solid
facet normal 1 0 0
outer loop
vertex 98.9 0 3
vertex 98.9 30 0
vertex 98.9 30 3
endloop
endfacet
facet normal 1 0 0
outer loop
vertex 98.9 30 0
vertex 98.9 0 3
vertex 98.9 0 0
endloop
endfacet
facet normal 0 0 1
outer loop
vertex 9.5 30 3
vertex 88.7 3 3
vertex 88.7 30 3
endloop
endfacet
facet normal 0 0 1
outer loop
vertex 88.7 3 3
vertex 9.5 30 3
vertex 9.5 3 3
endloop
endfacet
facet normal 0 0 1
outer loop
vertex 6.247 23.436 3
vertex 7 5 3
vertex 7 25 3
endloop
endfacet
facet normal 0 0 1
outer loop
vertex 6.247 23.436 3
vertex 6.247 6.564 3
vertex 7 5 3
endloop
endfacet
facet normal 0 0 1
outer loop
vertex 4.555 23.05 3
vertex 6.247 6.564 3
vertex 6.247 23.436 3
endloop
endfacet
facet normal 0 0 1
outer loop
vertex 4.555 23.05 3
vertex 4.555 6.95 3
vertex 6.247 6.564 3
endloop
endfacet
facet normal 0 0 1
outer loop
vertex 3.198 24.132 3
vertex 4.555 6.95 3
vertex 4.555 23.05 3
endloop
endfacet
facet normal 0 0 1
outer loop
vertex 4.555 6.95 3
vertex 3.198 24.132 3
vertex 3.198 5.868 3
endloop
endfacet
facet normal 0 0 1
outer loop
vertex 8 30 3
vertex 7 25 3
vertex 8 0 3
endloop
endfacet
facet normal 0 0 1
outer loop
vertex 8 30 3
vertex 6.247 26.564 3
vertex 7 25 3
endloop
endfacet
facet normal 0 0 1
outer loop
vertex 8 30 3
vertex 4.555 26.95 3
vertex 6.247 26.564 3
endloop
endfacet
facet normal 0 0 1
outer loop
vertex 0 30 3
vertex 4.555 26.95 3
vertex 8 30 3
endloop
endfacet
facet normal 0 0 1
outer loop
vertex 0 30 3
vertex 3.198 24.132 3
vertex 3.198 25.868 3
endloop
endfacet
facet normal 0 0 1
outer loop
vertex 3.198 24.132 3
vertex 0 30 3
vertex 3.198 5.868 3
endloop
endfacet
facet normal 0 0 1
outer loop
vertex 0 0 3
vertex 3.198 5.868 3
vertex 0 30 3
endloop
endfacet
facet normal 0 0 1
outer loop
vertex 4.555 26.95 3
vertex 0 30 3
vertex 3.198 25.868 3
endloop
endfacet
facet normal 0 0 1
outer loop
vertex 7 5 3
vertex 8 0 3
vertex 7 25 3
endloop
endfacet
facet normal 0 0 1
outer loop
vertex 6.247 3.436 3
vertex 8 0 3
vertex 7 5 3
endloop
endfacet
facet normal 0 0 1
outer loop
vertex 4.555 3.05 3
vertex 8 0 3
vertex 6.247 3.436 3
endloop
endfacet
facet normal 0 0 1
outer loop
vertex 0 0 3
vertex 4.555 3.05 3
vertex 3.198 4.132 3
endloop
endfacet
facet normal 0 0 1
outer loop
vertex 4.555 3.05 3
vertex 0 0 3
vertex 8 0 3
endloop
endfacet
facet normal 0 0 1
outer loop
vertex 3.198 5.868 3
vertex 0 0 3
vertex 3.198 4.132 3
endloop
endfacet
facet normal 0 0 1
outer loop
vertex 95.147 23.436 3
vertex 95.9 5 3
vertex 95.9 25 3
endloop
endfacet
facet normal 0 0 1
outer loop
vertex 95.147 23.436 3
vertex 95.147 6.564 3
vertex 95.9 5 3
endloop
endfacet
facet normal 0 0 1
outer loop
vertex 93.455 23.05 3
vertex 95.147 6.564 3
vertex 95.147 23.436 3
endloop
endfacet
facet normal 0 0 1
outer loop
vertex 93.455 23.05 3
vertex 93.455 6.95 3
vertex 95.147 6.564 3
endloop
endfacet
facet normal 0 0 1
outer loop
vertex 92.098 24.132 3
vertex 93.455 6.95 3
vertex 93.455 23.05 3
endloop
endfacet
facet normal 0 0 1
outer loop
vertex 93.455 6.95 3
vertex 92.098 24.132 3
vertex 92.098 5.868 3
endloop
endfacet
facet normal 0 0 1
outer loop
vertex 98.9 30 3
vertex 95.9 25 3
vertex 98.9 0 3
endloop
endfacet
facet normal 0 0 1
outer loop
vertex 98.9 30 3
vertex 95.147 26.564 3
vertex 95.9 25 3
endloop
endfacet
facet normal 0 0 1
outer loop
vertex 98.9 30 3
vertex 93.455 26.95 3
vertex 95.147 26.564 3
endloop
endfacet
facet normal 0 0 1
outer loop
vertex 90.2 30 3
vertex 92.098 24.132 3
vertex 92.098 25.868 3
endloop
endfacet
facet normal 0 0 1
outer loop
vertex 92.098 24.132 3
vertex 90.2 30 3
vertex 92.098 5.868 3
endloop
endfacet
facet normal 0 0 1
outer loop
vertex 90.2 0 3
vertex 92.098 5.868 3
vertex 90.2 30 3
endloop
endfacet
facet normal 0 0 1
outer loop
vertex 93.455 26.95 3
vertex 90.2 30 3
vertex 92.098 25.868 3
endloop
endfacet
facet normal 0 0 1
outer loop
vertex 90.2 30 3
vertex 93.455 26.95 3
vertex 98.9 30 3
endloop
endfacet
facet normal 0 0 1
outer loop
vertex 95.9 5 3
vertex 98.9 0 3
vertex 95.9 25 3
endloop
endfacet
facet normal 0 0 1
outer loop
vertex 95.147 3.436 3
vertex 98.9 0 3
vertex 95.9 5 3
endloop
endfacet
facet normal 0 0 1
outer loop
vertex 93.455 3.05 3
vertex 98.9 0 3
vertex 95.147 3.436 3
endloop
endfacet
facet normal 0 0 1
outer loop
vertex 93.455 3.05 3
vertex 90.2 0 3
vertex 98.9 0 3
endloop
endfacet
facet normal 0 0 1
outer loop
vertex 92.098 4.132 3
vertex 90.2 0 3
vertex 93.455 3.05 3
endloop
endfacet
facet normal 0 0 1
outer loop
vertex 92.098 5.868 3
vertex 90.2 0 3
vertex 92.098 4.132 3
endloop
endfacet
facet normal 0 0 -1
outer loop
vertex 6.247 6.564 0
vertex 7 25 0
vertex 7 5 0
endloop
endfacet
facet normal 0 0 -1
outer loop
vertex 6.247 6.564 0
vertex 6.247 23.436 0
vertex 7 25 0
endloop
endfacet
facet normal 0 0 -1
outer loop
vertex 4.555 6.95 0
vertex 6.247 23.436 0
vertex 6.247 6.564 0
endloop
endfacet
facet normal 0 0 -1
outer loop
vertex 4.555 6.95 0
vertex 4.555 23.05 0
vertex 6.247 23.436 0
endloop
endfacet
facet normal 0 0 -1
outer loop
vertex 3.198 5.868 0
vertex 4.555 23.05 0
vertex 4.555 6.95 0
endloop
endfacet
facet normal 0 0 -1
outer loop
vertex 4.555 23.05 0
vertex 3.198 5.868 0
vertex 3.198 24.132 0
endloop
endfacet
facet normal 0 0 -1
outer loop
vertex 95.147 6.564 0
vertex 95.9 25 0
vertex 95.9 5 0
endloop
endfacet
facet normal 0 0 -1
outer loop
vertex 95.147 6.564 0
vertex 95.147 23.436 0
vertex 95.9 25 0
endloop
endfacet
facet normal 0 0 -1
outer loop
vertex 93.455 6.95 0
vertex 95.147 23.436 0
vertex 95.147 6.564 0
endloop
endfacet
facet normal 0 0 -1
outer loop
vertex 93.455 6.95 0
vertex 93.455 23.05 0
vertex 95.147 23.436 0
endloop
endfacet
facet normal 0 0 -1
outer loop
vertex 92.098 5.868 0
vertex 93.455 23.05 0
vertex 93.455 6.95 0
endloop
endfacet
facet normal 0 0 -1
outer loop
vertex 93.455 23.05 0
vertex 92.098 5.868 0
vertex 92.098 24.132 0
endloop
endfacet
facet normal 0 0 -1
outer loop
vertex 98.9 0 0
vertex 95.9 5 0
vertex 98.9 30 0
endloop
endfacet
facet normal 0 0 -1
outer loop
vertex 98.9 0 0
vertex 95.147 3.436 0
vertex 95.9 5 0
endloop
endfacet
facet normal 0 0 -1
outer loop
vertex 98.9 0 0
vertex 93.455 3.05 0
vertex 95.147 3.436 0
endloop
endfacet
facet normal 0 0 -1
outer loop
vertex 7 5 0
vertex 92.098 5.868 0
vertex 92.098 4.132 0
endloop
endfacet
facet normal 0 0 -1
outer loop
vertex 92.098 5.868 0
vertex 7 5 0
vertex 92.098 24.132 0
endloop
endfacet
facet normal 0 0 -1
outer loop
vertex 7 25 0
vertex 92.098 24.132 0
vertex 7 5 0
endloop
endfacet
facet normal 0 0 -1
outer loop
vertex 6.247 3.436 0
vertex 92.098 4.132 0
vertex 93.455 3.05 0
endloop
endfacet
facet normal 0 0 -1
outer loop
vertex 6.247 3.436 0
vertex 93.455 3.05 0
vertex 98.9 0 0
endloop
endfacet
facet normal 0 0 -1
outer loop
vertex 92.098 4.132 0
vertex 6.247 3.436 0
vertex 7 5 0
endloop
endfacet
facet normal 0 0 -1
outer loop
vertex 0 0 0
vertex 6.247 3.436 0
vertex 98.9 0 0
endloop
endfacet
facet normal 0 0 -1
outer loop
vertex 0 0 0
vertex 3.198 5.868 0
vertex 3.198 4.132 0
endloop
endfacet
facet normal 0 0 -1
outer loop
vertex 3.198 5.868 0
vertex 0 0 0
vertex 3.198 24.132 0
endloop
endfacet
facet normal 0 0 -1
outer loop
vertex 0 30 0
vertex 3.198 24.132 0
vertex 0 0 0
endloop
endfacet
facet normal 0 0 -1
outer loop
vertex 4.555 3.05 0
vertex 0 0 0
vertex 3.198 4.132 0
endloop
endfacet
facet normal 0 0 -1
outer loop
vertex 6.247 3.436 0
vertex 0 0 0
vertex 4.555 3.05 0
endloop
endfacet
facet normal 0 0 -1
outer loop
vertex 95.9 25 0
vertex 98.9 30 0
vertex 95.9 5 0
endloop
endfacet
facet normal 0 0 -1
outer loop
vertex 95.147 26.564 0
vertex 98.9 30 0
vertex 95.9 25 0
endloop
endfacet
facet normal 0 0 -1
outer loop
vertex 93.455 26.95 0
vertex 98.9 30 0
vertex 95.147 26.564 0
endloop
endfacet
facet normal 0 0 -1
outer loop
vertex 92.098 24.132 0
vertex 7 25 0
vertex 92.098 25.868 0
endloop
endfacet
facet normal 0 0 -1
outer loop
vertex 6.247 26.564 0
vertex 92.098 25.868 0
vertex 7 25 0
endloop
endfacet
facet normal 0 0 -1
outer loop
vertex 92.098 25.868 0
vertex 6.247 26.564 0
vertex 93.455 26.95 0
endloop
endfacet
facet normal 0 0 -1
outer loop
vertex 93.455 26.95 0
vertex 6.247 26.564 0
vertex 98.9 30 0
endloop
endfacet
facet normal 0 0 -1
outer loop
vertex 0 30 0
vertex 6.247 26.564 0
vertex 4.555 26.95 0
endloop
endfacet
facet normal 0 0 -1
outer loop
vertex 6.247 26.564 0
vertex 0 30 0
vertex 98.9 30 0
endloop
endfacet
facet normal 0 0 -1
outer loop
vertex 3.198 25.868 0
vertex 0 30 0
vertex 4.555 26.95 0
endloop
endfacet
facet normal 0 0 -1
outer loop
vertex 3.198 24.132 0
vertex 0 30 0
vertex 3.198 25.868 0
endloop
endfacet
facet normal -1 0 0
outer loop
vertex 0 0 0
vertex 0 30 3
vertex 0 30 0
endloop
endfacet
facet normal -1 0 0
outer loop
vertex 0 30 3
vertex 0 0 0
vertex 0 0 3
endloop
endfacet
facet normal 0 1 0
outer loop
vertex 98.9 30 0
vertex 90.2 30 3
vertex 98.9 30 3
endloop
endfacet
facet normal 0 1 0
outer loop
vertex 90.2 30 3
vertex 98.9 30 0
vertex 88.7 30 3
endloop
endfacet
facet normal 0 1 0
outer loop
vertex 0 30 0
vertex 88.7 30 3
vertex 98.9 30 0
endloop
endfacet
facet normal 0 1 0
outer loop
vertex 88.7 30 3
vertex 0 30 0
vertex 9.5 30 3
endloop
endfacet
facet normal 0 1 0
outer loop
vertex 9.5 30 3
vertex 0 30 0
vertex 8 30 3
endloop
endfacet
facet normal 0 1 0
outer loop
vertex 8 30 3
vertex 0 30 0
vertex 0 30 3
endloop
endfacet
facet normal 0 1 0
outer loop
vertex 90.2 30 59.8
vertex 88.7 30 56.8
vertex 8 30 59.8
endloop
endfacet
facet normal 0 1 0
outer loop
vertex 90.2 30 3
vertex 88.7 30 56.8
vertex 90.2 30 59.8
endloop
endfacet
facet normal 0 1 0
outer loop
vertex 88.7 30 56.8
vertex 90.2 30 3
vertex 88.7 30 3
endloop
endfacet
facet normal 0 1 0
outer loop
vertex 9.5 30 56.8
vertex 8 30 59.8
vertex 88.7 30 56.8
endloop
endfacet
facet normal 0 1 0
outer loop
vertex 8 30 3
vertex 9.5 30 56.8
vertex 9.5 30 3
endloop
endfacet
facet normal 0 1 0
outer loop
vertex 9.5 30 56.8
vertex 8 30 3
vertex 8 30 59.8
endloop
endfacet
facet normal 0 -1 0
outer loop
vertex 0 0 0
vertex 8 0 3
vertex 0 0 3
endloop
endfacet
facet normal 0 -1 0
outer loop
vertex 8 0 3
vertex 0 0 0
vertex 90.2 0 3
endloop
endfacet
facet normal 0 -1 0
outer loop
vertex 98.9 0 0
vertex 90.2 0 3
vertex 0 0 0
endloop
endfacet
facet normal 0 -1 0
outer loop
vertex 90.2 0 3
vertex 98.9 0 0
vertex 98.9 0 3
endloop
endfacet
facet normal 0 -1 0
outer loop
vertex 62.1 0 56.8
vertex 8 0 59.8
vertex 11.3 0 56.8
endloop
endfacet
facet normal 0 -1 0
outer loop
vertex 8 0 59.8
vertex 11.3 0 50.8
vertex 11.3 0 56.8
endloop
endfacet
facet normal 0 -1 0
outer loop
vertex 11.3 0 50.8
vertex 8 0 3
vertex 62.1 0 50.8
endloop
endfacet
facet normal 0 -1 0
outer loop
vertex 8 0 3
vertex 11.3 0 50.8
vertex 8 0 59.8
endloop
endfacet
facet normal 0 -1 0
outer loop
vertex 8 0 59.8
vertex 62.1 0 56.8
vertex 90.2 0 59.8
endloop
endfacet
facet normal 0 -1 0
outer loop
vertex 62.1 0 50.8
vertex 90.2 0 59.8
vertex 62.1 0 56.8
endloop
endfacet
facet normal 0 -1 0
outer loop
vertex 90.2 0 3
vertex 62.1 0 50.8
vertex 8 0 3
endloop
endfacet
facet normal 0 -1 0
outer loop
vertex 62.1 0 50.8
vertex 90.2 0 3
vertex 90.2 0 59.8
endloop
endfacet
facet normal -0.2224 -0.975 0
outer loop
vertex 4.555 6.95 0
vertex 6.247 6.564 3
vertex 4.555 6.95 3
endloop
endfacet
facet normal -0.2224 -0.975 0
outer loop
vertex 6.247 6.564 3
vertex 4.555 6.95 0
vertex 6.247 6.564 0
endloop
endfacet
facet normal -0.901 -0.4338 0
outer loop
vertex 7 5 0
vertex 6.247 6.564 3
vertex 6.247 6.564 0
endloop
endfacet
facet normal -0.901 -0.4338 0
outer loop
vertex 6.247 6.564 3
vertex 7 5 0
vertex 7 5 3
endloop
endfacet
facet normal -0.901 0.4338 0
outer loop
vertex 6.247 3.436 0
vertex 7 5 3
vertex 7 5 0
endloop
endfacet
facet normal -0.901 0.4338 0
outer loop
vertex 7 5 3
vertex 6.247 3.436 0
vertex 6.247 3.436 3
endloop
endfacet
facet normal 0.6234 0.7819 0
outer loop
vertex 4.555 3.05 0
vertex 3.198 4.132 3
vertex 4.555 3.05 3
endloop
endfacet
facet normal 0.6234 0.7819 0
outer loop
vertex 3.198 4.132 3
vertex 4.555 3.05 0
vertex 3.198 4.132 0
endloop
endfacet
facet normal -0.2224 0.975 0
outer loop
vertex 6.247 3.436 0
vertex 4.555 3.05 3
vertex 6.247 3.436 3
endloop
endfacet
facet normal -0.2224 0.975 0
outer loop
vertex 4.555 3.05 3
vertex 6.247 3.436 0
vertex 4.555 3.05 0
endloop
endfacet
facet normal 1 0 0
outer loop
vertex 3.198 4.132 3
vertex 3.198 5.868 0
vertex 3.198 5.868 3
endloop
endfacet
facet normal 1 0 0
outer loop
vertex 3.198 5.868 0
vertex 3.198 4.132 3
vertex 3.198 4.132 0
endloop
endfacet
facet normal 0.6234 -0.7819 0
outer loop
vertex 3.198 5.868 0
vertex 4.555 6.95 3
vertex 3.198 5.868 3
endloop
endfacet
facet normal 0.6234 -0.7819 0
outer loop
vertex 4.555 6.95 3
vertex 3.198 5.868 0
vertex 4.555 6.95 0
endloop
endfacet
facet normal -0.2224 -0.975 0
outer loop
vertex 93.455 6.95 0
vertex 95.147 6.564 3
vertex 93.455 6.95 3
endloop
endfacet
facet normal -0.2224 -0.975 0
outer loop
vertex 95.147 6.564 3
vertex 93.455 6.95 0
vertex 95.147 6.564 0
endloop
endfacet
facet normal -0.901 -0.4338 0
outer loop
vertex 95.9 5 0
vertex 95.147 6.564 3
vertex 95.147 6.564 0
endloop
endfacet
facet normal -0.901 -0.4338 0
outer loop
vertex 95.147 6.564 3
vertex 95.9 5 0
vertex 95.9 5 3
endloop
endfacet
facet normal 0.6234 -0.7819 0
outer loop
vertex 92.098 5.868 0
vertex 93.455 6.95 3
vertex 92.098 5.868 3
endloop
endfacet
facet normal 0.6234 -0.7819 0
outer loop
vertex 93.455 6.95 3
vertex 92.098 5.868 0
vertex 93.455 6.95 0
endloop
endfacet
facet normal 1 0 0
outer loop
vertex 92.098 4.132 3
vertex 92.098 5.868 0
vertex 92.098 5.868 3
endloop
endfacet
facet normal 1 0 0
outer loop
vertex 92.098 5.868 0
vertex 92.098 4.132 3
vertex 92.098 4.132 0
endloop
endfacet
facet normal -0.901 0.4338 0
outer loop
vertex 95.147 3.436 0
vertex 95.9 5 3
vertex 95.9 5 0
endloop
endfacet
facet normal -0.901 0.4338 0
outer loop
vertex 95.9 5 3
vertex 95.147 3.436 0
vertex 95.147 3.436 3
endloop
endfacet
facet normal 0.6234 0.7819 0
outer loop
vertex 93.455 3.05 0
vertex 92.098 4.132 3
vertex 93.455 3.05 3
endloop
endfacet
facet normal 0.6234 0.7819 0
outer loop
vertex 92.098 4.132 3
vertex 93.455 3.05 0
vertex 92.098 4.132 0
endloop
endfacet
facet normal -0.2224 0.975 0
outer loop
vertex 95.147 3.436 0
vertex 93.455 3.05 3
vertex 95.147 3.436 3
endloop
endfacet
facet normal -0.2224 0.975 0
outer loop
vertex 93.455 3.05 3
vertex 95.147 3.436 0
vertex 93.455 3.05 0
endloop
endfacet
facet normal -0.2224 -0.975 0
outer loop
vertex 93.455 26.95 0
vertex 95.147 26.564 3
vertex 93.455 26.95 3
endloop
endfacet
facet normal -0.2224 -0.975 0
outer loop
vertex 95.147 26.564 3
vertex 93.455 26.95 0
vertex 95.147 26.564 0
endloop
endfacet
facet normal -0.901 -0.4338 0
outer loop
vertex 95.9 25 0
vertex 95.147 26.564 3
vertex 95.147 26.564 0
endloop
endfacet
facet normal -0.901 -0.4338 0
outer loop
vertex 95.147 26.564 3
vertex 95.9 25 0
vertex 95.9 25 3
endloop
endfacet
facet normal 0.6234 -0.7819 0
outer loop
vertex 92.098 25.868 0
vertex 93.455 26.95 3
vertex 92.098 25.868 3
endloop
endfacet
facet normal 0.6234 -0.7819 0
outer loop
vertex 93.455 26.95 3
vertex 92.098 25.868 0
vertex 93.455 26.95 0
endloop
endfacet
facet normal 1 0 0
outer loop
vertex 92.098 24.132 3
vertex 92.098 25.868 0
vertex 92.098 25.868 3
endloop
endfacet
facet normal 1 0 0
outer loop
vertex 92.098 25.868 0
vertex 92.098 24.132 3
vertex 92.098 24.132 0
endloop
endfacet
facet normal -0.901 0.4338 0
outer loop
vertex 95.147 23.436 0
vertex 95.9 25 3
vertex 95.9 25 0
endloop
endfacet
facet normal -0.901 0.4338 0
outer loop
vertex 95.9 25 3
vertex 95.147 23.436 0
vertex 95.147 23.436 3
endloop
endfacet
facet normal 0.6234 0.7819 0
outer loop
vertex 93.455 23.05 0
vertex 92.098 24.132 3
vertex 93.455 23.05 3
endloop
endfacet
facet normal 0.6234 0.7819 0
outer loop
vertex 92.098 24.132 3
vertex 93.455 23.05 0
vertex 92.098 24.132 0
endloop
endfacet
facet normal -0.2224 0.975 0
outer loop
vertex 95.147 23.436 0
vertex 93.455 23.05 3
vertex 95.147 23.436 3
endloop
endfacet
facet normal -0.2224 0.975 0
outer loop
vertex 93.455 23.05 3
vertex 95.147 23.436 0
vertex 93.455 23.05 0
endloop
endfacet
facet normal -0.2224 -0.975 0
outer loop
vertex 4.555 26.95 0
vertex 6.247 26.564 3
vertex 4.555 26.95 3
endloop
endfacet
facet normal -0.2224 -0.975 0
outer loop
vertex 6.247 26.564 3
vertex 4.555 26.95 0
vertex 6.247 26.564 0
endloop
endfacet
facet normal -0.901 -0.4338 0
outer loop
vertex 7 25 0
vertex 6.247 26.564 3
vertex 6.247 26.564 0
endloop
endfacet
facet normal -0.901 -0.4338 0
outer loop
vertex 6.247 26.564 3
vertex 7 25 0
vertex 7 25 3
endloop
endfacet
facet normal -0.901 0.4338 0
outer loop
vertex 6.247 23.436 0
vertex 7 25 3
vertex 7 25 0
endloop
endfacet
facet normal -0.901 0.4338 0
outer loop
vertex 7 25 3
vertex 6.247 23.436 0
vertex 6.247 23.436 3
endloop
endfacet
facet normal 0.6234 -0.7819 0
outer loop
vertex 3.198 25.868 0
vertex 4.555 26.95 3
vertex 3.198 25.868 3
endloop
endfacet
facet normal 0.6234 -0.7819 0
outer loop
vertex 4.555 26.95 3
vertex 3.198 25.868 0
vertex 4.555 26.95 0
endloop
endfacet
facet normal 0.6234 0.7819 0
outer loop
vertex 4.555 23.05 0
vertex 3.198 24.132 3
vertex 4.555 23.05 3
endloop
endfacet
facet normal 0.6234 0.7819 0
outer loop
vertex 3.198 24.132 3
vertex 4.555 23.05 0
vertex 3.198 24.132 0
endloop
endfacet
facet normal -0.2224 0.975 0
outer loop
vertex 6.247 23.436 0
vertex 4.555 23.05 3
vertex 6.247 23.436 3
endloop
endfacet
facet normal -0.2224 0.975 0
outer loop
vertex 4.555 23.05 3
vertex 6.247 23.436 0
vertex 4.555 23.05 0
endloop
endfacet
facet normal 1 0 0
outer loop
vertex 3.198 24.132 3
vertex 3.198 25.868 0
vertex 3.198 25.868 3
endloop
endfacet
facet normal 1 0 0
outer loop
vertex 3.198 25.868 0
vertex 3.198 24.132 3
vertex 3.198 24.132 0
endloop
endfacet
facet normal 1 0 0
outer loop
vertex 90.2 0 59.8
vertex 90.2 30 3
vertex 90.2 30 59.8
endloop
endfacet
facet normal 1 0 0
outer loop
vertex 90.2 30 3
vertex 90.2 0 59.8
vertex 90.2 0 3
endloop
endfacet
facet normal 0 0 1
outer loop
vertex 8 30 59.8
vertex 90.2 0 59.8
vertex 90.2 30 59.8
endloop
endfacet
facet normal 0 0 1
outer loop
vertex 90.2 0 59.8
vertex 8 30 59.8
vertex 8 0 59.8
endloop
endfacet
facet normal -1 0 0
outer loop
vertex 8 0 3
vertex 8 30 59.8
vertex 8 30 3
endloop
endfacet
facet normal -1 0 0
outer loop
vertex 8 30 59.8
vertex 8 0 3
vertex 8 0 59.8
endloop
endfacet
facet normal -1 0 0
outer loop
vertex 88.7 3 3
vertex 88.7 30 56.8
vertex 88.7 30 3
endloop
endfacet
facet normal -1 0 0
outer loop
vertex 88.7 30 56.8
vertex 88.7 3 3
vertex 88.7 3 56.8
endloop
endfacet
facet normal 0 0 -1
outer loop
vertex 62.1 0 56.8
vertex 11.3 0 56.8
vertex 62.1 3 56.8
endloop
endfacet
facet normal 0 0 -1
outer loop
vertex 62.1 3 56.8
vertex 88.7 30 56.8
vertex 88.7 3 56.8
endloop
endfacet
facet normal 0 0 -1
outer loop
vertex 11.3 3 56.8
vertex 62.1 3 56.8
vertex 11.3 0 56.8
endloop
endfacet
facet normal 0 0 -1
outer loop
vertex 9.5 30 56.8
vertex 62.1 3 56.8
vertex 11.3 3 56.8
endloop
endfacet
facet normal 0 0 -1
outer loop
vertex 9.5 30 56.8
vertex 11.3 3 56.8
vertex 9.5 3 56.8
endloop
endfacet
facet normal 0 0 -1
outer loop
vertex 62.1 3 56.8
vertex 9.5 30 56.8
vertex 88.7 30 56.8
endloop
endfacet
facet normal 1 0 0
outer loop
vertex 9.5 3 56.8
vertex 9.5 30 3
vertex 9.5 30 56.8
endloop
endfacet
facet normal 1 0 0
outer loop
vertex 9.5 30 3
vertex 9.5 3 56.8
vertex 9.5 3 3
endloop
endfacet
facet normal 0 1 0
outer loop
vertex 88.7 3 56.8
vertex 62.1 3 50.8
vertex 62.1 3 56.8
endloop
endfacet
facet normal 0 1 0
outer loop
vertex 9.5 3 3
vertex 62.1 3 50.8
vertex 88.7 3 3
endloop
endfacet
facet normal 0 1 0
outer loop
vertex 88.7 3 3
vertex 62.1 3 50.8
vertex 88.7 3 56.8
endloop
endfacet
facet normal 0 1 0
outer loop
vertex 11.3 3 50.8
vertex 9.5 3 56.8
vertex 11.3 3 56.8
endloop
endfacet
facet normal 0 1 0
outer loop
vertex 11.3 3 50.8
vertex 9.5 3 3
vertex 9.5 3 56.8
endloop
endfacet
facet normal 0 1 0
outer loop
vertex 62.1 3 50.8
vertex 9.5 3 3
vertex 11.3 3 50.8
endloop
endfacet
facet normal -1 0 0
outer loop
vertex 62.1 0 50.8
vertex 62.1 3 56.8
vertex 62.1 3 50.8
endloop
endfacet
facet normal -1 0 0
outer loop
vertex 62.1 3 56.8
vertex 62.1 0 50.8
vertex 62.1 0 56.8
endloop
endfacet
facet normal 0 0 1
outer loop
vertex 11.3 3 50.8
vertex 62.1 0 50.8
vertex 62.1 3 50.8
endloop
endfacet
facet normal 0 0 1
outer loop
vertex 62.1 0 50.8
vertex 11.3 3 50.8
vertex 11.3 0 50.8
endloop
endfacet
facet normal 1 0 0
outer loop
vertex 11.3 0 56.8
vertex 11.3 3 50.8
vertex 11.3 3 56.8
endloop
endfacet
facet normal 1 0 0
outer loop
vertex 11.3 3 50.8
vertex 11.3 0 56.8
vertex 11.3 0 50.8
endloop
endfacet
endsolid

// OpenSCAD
// CSG.scad - Basic example of CSG usage

smidge=3;
modem_depth=2*25.4; //in to mm
modem_length=3*25.4;
screw_x=3.5*25.4;
screw_y=20;
y_buffer=5;
x_buffer=5;
plate_y=screw_y+2*y_buffer;
plate_x=screw_x+2*x_buffer;
plate_thickness=3;
screw_r=2;
screw_h=10;
basin_buffer_x=x_buffer+smidge;
//basin_buffer_y=y_buffer+smidge;
basin_buffer_y=0;
basin_depth=modem_depth+3*smidge;
basin_length=modem_length+2*smidge;
basin_height=plate_y;

cable_depth=6;
//holder
module basin() {
    
difference() {
//basin
translate([basin_buffer_x,basin_buffer_y,0])
cube(size=[basin_length,basin_height,basin_depth],center=false);

//basin cavity
translate([basin_buffer_x+smidge/2,basin_buffer_y+smidge,smidge])
cube(size=[modem_length+smidge,basin_height,modem_depth+smidge],center=false);

//cable gap
translate([basin_buffer_x+smidge*1.1,-5,modem_depth])
cube(size=[modem_length*2/3,basin_height,cable_depth],center=false);
}
}


//backplate
module backplate() {
difference() {
cube(size=[plate_x,plate_y,plate_thickness],center=false);

//bottom left screw
translate([x_buffer,y_buffer,0])
cylinder(h = screw_h, r = screw_r, center = true);

//bottom left screw
translate([x_buffer+screw_x,y_buffer,0])
cylinder(h = screw_h, r = screw_r, center = true);

//top right screw
translate([x_buffer+screw_x,y_buffer+screw_y,0])
cylinder(h = screw_h, r = screw_r, center = true);

//top left screw
translate([x_buffer,y_buffer+screw_y,0])
cylinder(h = screw_h, r = screw_r, center = true);
    
}
}



backplate();
basin();

echo(basin_depth);
